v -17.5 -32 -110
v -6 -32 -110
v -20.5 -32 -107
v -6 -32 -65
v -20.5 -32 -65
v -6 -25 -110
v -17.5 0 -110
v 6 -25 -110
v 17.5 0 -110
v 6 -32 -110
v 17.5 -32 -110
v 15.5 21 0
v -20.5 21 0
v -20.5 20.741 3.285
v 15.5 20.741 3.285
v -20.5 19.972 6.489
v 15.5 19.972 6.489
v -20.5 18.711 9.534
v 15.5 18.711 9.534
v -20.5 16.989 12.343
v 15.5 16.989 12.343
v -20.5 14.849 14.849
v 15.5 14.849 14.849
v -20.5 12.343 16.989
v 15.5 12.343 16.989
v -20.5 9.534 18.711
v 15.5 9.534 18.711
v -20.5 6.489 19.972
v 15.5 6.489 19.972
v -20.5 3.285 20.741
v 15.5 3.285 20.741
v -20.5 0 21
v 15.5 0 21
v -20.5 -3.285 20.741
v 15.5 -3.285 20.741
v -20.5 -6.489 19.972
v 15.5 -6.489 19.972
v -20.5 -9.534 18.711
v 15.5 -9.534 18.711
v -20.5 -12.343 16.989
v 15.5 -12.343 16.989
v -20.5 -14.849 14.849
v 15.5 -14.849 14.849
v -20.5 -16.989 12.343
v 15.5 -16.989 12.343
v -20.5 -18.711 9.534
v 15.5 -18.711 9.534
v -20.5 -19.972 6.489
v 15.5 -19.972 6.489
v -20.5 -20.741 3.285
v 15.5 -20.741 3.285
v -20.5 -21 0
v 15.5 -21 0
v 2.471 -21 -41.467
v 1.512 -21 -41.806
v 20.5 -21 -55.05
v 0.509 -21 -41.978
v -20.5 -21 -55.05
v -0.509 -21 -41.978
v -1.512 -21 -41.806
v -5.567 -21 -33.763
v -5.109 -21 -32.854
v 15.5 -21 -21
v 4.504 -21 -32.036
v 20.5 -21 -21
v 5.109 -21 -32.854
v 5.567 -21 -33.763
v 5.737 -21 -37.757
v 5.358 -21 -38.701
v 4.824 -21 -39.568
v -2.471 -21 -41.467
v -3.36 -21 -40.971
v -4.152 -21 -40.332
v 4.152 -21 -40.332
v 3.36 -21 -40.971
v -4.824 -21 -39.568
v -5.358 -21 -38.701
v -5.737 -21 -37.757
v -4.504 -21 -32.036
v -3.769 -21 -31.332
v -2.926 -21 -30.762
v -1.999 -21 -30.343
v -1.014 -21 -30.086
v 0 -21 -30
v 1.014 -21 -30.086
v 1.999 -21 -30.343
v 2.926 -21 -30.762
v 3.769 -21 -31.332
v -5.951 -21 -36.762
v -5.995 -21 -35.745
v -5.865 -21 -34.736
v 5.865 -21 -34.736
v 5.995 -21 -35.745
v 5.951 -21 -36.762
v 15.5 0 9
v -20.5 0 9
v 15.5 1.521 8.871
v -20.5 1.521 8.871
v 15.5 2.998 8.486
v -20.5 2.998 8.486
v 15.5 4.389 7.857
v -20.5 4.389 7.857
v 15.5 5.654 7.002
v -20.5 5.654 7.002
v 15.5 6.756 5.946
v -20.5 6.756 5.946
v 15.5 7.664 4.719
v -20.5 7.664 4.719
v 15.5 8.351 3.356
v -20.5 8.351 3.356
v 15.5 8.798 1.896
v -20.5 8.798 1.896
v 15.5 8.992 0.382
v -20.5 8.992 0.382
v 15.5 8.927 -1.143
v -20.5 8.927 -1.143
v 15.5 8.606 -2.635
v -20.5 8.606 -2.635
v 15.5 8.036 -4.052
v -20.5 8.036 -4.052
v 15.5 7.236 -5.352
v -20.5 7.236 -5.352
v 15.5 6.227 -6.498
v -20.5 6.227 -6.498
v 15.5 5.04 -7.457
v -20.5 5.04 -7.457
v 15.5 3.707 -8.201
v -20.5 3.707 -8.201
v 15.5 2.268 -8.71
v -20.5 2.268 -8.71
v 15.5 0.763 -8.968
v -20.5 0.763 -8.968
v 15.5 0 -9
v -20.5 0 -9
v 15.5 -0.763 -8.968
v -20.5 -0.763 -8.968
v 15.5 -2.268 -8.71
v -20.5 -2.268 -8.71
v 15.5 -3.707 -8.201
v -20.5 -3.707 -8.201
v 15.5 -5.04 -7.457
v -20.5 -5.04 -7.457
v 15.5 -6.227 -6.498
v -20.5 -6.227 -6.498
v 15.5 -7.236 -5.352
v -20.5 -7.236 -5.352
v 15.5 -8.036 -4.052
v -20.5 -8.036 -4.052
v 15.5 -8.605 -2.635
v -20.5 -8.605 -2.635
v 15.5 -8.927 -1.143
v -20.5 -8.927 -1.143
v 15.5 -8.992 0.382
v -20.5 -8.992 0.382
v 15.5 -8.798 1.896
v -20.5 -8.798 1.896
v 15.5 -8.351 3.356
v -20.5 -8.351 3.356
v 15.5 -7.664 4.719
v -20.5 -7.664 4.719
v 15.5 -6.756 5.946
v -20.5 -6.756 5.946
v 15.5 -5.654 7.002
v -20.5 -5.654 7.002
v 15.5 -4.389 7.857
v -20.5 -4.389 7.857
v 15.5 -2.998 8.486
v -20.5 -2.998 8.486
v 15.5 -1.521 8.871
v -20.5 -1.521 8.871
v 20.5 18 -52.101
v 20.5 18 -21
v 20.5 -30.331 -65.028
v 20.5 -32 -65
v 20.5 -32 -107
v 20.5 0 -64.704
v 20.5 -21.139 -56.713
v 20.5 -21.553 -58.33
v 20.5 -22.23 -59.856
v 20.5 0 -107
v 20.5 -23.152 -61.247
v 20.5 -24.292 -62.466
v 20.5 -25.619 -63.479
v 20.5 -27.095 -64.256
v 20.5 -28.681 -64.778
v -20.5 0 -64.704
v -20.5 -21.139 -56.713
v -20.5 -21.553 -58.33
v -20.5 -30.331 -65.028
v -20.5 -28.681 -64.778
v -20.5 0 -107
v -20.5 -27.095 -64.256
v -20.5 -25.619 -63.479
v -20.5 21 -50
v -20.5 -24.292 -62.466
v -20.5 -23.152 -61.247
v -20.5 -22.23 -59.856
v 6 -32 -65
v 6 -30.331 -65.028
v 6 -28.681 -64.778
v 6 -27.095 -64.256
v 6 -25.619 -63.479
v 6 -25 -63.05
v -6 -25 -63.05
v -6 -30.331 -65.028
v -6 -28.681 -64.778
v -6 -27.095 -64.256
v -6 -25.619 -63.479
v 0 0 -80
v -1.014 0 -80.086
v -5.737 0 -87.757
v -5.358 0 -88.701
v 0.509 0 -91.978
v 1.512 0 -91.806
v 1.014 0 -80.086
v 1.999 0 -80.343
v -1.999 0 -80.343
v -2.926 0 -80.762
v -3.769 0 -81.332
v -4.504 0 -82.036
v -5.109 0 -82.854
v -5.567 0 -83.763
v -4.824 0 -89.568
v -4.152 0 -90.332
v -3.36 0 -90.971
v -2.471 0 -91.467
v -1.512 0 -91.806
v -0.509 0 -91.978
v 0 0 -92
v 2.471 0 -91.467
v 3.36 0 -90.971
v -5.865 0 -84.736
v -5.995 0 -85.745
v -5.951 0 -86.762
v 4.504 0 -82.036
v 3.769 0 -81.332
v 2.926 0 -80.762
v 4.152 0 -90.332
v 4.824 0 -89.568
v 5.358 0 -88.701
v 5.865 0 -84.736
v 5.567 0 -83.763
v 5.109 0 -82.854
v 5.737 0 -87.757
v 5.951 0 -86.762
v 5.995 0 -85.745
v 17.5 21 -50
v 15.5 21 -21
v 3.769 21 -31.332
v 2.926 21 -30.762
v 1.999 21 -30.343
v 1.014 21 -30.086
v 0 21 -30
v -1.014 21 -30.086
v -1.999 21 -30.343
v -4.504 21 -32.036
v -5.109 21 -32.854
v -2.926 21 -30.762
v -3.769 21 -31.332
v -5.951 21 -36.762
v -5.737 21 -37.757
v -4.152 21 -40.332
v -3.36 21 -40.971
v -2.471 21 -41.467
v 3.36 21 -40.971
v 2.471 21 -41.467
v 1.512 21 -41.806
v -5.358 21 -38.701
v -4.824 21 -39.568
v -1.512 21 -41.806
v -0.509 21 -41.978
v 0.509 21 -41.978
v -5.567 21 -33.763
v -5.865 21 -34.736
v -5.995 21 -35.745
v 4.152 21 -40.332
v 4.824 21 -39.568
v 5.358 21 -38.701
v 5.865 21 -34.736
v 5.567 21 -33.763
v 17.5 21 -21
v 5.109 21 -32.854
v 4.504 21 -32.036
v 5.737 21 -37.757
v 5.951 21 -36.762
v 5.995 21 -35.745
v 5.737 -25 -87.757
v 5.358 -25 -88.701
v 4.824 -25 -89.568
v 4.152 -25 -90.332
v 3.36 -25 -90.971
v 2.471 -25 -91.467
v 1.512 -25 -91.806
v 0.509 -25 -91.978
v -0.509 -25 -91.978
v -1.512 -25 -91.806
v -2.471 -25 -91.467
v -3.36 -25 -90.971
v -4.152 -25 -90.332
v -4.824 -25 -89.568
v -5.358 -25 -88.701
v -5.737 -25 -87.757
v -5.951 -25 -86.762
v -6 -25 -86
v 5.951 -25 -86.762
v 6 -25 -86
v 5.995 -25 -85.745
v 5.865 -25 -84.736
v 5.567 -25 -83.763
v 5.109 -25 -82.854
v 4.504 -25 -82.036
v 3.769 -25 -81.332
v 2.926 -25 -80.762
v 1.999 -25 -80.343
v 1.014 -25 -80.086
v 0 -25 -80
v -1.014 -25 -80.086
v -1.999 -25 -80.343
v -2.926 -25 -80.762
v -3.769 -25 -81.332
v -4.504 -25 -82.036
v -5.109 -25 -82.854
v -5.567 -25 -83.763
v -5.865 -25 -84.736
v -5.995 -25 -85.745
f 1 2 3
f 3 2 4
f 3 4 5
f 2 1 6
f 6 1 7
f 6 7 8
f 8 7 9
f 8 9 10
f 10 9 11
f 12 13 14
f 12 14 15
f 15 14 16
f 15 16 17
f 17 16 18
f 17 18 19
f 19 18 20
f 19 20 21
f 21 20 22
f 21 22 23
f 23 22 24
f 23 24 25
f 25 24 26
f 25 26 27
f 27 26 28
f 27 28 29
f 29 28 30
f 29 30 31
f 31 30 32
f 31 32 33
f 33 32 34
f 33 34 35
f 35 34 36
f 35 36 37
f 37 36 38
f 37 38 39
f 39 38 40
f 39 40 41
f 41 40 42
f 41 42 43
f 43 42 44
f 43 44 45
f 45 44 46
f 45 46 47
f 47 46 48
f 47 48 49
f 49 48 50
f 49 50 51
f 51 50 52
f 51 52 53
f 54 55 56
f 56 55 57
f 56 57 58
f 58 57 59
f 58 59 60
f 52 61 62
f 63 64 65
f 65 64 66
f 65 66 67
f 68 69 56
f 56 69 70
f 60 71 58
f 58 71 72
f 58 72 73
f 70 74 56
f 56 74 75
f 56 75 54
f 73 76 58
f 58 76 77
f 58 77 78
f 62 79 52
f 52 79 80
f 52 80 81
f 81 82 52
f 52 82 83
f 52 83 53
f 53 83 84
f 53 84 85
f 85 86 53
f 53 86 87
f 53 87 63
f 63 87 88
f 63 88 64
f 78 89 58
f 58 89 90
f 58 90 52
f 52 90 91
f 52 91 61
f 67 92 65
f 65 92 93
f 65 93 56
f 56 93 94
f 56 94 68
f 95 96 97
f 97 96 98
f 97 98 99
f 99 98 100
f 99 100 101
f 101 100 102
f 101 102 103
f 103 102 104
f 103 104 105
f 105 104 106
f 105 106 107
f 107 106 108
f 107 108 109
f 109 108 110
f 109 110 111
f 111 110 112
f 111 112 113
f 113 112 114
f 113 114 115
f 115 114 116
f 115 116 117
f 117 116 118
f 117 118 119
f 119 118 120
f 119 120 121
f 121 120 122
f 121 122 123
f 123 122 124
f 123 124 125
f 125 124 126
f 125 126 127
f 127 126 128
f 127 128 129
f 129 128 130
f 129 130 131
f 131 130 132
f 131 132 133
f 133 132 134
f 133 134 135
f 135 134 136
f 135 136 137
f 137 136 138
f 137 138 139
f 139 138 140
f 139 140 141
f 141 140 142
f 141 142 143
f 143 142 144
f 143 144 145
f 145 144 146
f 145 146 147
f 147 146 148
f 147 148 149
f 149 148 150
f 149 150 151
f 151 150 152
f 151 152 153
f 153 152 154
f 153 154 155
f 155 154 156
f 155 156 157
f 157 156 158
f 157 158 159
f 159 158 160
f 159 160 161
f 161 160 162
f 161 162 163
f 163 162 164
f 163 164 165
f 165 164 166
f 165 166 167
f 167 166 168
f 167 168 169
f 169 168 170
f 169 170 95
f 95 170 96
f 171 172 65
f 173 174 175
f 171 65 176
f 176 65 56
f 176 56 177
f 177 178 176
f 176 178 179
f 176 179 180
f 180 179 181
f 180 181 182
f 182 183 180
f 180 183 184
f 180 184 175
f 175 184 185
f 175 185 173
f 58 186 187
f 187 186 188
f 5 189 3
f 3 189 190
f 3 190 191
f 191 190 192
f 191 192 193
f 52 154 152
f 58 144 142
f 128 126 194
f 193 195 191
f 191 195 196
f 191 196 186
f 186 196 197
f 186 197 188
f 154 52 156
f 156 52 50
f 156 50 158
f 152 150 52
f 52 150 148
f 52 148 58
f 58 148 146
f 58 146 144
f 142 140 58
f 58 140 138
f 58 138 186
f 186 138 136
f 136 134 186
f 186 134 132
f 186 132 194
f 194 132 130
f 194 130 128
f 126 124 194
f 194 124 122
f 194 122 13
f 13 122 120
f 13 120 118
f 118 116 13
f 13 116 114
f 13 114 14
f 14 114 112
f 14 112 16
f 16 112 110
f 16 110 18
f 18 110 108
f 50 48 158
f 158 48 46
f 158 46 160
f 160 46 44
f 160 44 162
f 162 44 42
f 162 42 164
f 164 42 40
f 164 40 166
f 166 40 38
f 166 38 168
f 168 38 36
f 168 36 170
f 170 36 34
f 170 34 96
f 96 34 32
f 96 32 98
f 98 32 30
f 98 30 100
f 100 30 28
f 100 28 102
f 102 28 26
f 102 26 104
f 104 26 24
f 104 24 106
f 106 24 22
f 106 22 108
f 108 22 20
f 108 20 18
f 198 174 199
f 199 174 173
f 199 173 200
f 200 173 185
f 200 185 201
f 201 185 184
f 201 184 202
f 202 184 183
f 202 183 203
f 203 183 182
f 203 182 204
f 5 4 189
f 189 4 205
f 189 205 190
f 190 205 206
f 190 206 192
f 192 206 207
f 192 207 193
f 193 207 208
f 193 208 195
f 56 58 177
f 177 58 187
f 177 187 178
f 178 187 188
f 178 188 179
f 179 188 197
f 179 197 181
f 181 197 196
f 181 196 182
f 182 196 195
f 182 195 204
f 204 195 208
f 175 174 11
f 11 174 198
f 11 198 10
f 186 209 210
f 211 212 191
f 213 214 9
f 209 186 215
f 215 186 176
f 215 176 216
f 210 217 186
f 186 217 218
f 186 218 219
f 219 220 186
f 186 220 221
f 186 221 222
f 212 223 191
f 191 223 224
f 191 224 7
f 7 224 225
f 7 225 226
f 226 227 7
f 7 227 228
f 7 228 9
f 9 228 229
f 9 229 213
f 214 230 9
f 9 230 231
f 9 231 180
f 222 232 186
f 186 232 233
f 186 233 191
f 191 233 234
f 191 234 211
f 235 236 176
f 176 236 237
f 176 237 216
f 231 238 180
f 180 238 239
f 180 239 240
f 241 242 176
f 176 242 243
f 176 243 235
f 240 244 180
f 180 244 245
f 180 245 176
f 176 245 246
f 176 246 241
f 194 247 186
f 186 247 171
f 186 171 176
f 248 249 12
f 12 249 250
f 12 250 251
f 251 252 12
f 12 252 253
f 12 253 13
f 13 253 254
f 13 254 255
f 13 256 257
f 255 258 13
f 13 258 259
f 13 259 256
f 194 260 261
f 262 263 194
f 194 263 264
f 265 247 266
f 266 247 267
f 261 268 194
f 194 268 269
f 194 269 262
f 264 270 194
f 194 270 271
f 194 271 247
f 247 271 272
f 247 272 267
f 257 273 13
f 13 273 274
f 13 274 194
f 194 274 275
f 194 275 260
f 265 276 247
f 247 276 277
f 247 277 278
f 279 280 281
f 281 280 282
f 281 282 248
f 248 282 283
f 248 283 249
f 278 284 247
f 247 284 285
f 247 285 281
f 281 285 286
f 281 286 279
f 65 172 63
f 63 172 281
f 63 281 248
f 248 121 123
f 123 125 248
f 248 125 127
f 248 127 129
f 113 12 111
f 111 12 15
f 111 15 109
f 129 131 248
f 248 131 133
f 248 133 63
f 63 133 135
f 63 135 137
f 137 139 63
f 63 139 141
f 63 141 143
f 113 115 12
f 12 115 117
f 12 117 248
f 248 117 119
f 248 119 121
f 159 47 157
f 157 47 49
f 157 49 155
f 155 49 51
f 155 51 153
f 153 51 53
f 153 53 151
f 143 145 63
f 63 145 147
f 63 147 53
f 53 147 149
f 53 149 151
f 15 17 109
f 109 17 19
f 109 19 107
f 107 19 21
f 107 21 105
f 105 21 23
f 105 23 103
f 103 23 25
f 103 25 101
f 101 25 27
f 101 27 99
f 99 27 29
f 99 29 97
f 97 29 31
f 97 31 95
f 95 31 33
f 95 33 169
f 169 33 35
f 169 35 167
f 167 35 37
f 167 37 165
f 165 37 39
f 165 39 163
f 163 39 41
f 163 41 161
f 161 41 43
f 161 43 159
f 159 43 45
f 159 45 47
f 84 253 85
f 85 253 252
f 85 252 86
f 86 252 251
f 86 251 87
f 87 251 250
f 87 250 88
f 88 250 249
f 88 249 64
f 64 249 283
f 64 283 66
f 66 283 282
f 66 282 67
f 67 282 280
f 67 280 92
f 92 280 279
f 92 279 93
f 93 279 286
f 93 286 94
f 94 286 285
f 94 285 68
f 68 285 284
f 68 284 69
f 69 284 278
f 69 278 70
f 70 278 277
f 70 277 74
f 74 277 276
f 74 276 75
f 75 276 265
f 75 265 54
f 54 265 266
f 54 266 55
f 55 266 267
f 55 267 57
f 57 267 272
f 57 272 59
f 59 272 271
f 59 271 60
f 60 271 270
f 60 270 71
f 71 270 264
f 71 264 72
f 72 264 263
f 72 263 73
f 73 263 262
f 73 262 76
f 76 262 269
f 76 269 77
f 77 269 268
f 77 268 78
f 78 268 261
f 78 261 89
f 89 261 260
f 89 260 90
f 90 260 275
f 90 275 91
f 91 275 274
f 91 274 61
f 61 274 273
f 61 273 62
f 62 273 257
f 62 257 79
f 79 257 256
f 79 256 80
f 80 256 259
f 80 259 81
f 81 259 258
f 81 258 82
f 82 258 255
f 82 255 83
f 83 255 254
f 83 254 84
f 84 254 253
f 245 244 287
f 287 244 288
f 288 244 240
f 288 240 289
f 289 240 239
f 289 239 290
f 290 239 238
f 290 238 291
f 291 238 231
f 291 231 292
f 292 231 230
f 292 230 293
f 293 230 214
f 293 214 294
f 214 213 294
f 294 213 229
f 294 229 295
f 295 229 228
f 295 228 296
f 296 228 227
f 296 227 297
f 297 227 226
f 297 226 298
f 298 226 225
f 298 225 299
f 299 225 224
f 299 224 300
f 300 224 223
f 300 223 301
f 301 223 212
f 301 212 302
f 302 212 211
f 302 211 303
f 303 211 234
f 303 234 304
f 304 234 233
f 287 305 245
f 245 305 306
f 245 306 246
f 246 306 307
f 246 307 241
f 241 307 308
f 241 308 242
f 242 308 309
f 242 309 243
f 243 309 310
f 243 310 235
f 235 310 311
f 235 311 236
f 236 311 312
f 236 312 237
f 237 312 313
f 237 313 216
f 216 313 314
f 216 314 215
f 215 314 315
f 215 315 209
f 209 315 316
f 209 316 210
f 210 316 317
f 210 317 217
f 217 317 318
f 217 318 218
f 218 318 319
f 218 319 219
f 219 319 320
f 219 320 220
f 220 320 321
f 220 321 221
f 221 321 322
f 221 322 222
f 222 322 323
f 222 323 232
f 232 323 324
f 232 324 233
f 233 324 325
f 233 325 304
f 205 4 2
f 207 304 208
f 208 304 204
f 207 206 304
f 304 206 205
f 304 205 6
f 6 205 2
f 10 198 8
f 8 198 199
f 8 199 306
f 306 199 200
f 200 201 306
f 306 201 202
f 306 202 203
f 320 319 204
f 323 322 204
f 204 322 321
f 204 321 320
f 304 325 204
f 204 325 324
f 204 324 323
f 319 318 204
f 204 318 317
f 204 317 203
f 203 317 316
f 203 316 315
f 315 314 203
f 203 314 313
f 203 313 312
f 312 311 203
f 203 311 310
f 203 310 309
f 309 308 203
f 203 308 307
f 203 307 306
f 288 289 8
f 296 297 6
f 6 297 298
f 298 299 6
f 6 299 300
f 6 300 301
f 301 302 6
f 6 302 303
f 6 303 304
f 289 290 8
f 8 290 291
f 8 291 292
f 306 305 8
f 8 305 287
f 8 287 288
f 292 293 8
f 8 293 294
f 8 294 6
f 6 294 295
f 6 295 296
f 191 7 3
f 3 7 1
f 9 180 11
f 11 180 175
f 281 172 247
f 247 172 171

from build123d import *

# Parameters (mm, degrees)
SKETCH2_R           = 9
BOSS_EXTRUDE1_DEPTH = 20.5
SKETCH3_W           = 5
SKETCH3_H           = 21
CUT_EXTRUDE1_DEPTH  = 124.81134843
SKETCH4_W           = 12
SKETCH4_H           = 7
CUT_EXTRUDE2_DEPTH  = 137.401063046
CHAMFER2_SIZE       = 3


with BuildPart() as part:
    # Sketch2 → Boss-Extrude1 (new, symmetric)
    with BuildSketch(Plane(origin=(0, 0, 0), x_dir=(0, 0, -1), z_dir=(1, 0, 0))):
        with BuildLine():
            Line((0, 21), (50, 21))
            Line((50, 21), (64.704358302, 0))
            Line((64.704358302, 0), (110, 0))
            Line((110, 0), (110, -32))
            Line((110, -32), (65, -32))
            ThreePointArc((65, -32), (62.466324116, -24.291796068), (55.050125629, -21))
            Line((55.050125629, -21), (0, -21))
            ThreePointArc((0, -21), (-21, 0), (0, 21))
        make_face()
        Circle(SKETCH2_R, mode=Mode.SUBTRACT)
    extrude(amount=BOSS_EXTRUDE1_DEPTH, both=True)

    # Sketch3 → Cut-Extrude1 (cut, through all)
    with BuildSketch(Plane(origin=(0, 21, 0), x_dir=(1, 0, 0), z_dir=(0, 1, 0))):
        with Locations((18, -10.5)):
            Rectangle(SKETCH3_W, SKETCH3_H)
        with Locations((18, 10.5)):
            Rectangle(SKETCH3_W, SKETCH3_H)
        with BuildLine():
            ThreePointArc((0, 42), (-6, 36), (0, 30))
            Line((0, 30), (0, 42))
        make_face()
        with BuildLine():
            Line((0, 42), (0, 30))
            ThreePointArc((0, 30), (4.242640687, 31.757359313), (6, 36))
            ThreePointArc((6, 36), (4.242640687, 40.242640687), (0, 42))
        make_face()
        with BuildLine():
            ThreePointArc((6, 86), (4.242640687, 90.242640687), (0, 92))
            Line((0, 92), (0, 80))
            ThreePointArc((0, 80), (4.242640687, 81.757359313), (6, 86))
        make_face()
        with BuildLine():
            Line((0, 80), (0, 92))
            ThreePointArc((0, 92), (-6, 86), (0, 80))
        make_face()
    extrude(amount=-CUT_EXTRUDE1_DEPTH, mode=Mode.SUBTRACT)

    # Sketch4 → Cut-Extrude2 (cut, through all)
    with BuildSketch(Plane(origin=(0, 0, -110), x_dir=(-1, 0, 0), z_dir=(0, 0, -1))):
        with Locations((0, -28.5)):
            Rectangle(SKETCH4_W, SKETCH4_H)
    extrude(amount=-CUT_EXTRUDE2_DEPTH, mode=Mode.SUBTRACT)

    # Chamfer2
    chamfer2_edges = [part.edges().sort_by_distance(p)[0] for p in [
        (20.5, -16, -110),
        (20.5, 21, -35.5),
        (-20.5, -16, -110),
    ]]
    chamfer(chamfer2_edges, length=CHAMFER2_SIZE)


solid = part.part
